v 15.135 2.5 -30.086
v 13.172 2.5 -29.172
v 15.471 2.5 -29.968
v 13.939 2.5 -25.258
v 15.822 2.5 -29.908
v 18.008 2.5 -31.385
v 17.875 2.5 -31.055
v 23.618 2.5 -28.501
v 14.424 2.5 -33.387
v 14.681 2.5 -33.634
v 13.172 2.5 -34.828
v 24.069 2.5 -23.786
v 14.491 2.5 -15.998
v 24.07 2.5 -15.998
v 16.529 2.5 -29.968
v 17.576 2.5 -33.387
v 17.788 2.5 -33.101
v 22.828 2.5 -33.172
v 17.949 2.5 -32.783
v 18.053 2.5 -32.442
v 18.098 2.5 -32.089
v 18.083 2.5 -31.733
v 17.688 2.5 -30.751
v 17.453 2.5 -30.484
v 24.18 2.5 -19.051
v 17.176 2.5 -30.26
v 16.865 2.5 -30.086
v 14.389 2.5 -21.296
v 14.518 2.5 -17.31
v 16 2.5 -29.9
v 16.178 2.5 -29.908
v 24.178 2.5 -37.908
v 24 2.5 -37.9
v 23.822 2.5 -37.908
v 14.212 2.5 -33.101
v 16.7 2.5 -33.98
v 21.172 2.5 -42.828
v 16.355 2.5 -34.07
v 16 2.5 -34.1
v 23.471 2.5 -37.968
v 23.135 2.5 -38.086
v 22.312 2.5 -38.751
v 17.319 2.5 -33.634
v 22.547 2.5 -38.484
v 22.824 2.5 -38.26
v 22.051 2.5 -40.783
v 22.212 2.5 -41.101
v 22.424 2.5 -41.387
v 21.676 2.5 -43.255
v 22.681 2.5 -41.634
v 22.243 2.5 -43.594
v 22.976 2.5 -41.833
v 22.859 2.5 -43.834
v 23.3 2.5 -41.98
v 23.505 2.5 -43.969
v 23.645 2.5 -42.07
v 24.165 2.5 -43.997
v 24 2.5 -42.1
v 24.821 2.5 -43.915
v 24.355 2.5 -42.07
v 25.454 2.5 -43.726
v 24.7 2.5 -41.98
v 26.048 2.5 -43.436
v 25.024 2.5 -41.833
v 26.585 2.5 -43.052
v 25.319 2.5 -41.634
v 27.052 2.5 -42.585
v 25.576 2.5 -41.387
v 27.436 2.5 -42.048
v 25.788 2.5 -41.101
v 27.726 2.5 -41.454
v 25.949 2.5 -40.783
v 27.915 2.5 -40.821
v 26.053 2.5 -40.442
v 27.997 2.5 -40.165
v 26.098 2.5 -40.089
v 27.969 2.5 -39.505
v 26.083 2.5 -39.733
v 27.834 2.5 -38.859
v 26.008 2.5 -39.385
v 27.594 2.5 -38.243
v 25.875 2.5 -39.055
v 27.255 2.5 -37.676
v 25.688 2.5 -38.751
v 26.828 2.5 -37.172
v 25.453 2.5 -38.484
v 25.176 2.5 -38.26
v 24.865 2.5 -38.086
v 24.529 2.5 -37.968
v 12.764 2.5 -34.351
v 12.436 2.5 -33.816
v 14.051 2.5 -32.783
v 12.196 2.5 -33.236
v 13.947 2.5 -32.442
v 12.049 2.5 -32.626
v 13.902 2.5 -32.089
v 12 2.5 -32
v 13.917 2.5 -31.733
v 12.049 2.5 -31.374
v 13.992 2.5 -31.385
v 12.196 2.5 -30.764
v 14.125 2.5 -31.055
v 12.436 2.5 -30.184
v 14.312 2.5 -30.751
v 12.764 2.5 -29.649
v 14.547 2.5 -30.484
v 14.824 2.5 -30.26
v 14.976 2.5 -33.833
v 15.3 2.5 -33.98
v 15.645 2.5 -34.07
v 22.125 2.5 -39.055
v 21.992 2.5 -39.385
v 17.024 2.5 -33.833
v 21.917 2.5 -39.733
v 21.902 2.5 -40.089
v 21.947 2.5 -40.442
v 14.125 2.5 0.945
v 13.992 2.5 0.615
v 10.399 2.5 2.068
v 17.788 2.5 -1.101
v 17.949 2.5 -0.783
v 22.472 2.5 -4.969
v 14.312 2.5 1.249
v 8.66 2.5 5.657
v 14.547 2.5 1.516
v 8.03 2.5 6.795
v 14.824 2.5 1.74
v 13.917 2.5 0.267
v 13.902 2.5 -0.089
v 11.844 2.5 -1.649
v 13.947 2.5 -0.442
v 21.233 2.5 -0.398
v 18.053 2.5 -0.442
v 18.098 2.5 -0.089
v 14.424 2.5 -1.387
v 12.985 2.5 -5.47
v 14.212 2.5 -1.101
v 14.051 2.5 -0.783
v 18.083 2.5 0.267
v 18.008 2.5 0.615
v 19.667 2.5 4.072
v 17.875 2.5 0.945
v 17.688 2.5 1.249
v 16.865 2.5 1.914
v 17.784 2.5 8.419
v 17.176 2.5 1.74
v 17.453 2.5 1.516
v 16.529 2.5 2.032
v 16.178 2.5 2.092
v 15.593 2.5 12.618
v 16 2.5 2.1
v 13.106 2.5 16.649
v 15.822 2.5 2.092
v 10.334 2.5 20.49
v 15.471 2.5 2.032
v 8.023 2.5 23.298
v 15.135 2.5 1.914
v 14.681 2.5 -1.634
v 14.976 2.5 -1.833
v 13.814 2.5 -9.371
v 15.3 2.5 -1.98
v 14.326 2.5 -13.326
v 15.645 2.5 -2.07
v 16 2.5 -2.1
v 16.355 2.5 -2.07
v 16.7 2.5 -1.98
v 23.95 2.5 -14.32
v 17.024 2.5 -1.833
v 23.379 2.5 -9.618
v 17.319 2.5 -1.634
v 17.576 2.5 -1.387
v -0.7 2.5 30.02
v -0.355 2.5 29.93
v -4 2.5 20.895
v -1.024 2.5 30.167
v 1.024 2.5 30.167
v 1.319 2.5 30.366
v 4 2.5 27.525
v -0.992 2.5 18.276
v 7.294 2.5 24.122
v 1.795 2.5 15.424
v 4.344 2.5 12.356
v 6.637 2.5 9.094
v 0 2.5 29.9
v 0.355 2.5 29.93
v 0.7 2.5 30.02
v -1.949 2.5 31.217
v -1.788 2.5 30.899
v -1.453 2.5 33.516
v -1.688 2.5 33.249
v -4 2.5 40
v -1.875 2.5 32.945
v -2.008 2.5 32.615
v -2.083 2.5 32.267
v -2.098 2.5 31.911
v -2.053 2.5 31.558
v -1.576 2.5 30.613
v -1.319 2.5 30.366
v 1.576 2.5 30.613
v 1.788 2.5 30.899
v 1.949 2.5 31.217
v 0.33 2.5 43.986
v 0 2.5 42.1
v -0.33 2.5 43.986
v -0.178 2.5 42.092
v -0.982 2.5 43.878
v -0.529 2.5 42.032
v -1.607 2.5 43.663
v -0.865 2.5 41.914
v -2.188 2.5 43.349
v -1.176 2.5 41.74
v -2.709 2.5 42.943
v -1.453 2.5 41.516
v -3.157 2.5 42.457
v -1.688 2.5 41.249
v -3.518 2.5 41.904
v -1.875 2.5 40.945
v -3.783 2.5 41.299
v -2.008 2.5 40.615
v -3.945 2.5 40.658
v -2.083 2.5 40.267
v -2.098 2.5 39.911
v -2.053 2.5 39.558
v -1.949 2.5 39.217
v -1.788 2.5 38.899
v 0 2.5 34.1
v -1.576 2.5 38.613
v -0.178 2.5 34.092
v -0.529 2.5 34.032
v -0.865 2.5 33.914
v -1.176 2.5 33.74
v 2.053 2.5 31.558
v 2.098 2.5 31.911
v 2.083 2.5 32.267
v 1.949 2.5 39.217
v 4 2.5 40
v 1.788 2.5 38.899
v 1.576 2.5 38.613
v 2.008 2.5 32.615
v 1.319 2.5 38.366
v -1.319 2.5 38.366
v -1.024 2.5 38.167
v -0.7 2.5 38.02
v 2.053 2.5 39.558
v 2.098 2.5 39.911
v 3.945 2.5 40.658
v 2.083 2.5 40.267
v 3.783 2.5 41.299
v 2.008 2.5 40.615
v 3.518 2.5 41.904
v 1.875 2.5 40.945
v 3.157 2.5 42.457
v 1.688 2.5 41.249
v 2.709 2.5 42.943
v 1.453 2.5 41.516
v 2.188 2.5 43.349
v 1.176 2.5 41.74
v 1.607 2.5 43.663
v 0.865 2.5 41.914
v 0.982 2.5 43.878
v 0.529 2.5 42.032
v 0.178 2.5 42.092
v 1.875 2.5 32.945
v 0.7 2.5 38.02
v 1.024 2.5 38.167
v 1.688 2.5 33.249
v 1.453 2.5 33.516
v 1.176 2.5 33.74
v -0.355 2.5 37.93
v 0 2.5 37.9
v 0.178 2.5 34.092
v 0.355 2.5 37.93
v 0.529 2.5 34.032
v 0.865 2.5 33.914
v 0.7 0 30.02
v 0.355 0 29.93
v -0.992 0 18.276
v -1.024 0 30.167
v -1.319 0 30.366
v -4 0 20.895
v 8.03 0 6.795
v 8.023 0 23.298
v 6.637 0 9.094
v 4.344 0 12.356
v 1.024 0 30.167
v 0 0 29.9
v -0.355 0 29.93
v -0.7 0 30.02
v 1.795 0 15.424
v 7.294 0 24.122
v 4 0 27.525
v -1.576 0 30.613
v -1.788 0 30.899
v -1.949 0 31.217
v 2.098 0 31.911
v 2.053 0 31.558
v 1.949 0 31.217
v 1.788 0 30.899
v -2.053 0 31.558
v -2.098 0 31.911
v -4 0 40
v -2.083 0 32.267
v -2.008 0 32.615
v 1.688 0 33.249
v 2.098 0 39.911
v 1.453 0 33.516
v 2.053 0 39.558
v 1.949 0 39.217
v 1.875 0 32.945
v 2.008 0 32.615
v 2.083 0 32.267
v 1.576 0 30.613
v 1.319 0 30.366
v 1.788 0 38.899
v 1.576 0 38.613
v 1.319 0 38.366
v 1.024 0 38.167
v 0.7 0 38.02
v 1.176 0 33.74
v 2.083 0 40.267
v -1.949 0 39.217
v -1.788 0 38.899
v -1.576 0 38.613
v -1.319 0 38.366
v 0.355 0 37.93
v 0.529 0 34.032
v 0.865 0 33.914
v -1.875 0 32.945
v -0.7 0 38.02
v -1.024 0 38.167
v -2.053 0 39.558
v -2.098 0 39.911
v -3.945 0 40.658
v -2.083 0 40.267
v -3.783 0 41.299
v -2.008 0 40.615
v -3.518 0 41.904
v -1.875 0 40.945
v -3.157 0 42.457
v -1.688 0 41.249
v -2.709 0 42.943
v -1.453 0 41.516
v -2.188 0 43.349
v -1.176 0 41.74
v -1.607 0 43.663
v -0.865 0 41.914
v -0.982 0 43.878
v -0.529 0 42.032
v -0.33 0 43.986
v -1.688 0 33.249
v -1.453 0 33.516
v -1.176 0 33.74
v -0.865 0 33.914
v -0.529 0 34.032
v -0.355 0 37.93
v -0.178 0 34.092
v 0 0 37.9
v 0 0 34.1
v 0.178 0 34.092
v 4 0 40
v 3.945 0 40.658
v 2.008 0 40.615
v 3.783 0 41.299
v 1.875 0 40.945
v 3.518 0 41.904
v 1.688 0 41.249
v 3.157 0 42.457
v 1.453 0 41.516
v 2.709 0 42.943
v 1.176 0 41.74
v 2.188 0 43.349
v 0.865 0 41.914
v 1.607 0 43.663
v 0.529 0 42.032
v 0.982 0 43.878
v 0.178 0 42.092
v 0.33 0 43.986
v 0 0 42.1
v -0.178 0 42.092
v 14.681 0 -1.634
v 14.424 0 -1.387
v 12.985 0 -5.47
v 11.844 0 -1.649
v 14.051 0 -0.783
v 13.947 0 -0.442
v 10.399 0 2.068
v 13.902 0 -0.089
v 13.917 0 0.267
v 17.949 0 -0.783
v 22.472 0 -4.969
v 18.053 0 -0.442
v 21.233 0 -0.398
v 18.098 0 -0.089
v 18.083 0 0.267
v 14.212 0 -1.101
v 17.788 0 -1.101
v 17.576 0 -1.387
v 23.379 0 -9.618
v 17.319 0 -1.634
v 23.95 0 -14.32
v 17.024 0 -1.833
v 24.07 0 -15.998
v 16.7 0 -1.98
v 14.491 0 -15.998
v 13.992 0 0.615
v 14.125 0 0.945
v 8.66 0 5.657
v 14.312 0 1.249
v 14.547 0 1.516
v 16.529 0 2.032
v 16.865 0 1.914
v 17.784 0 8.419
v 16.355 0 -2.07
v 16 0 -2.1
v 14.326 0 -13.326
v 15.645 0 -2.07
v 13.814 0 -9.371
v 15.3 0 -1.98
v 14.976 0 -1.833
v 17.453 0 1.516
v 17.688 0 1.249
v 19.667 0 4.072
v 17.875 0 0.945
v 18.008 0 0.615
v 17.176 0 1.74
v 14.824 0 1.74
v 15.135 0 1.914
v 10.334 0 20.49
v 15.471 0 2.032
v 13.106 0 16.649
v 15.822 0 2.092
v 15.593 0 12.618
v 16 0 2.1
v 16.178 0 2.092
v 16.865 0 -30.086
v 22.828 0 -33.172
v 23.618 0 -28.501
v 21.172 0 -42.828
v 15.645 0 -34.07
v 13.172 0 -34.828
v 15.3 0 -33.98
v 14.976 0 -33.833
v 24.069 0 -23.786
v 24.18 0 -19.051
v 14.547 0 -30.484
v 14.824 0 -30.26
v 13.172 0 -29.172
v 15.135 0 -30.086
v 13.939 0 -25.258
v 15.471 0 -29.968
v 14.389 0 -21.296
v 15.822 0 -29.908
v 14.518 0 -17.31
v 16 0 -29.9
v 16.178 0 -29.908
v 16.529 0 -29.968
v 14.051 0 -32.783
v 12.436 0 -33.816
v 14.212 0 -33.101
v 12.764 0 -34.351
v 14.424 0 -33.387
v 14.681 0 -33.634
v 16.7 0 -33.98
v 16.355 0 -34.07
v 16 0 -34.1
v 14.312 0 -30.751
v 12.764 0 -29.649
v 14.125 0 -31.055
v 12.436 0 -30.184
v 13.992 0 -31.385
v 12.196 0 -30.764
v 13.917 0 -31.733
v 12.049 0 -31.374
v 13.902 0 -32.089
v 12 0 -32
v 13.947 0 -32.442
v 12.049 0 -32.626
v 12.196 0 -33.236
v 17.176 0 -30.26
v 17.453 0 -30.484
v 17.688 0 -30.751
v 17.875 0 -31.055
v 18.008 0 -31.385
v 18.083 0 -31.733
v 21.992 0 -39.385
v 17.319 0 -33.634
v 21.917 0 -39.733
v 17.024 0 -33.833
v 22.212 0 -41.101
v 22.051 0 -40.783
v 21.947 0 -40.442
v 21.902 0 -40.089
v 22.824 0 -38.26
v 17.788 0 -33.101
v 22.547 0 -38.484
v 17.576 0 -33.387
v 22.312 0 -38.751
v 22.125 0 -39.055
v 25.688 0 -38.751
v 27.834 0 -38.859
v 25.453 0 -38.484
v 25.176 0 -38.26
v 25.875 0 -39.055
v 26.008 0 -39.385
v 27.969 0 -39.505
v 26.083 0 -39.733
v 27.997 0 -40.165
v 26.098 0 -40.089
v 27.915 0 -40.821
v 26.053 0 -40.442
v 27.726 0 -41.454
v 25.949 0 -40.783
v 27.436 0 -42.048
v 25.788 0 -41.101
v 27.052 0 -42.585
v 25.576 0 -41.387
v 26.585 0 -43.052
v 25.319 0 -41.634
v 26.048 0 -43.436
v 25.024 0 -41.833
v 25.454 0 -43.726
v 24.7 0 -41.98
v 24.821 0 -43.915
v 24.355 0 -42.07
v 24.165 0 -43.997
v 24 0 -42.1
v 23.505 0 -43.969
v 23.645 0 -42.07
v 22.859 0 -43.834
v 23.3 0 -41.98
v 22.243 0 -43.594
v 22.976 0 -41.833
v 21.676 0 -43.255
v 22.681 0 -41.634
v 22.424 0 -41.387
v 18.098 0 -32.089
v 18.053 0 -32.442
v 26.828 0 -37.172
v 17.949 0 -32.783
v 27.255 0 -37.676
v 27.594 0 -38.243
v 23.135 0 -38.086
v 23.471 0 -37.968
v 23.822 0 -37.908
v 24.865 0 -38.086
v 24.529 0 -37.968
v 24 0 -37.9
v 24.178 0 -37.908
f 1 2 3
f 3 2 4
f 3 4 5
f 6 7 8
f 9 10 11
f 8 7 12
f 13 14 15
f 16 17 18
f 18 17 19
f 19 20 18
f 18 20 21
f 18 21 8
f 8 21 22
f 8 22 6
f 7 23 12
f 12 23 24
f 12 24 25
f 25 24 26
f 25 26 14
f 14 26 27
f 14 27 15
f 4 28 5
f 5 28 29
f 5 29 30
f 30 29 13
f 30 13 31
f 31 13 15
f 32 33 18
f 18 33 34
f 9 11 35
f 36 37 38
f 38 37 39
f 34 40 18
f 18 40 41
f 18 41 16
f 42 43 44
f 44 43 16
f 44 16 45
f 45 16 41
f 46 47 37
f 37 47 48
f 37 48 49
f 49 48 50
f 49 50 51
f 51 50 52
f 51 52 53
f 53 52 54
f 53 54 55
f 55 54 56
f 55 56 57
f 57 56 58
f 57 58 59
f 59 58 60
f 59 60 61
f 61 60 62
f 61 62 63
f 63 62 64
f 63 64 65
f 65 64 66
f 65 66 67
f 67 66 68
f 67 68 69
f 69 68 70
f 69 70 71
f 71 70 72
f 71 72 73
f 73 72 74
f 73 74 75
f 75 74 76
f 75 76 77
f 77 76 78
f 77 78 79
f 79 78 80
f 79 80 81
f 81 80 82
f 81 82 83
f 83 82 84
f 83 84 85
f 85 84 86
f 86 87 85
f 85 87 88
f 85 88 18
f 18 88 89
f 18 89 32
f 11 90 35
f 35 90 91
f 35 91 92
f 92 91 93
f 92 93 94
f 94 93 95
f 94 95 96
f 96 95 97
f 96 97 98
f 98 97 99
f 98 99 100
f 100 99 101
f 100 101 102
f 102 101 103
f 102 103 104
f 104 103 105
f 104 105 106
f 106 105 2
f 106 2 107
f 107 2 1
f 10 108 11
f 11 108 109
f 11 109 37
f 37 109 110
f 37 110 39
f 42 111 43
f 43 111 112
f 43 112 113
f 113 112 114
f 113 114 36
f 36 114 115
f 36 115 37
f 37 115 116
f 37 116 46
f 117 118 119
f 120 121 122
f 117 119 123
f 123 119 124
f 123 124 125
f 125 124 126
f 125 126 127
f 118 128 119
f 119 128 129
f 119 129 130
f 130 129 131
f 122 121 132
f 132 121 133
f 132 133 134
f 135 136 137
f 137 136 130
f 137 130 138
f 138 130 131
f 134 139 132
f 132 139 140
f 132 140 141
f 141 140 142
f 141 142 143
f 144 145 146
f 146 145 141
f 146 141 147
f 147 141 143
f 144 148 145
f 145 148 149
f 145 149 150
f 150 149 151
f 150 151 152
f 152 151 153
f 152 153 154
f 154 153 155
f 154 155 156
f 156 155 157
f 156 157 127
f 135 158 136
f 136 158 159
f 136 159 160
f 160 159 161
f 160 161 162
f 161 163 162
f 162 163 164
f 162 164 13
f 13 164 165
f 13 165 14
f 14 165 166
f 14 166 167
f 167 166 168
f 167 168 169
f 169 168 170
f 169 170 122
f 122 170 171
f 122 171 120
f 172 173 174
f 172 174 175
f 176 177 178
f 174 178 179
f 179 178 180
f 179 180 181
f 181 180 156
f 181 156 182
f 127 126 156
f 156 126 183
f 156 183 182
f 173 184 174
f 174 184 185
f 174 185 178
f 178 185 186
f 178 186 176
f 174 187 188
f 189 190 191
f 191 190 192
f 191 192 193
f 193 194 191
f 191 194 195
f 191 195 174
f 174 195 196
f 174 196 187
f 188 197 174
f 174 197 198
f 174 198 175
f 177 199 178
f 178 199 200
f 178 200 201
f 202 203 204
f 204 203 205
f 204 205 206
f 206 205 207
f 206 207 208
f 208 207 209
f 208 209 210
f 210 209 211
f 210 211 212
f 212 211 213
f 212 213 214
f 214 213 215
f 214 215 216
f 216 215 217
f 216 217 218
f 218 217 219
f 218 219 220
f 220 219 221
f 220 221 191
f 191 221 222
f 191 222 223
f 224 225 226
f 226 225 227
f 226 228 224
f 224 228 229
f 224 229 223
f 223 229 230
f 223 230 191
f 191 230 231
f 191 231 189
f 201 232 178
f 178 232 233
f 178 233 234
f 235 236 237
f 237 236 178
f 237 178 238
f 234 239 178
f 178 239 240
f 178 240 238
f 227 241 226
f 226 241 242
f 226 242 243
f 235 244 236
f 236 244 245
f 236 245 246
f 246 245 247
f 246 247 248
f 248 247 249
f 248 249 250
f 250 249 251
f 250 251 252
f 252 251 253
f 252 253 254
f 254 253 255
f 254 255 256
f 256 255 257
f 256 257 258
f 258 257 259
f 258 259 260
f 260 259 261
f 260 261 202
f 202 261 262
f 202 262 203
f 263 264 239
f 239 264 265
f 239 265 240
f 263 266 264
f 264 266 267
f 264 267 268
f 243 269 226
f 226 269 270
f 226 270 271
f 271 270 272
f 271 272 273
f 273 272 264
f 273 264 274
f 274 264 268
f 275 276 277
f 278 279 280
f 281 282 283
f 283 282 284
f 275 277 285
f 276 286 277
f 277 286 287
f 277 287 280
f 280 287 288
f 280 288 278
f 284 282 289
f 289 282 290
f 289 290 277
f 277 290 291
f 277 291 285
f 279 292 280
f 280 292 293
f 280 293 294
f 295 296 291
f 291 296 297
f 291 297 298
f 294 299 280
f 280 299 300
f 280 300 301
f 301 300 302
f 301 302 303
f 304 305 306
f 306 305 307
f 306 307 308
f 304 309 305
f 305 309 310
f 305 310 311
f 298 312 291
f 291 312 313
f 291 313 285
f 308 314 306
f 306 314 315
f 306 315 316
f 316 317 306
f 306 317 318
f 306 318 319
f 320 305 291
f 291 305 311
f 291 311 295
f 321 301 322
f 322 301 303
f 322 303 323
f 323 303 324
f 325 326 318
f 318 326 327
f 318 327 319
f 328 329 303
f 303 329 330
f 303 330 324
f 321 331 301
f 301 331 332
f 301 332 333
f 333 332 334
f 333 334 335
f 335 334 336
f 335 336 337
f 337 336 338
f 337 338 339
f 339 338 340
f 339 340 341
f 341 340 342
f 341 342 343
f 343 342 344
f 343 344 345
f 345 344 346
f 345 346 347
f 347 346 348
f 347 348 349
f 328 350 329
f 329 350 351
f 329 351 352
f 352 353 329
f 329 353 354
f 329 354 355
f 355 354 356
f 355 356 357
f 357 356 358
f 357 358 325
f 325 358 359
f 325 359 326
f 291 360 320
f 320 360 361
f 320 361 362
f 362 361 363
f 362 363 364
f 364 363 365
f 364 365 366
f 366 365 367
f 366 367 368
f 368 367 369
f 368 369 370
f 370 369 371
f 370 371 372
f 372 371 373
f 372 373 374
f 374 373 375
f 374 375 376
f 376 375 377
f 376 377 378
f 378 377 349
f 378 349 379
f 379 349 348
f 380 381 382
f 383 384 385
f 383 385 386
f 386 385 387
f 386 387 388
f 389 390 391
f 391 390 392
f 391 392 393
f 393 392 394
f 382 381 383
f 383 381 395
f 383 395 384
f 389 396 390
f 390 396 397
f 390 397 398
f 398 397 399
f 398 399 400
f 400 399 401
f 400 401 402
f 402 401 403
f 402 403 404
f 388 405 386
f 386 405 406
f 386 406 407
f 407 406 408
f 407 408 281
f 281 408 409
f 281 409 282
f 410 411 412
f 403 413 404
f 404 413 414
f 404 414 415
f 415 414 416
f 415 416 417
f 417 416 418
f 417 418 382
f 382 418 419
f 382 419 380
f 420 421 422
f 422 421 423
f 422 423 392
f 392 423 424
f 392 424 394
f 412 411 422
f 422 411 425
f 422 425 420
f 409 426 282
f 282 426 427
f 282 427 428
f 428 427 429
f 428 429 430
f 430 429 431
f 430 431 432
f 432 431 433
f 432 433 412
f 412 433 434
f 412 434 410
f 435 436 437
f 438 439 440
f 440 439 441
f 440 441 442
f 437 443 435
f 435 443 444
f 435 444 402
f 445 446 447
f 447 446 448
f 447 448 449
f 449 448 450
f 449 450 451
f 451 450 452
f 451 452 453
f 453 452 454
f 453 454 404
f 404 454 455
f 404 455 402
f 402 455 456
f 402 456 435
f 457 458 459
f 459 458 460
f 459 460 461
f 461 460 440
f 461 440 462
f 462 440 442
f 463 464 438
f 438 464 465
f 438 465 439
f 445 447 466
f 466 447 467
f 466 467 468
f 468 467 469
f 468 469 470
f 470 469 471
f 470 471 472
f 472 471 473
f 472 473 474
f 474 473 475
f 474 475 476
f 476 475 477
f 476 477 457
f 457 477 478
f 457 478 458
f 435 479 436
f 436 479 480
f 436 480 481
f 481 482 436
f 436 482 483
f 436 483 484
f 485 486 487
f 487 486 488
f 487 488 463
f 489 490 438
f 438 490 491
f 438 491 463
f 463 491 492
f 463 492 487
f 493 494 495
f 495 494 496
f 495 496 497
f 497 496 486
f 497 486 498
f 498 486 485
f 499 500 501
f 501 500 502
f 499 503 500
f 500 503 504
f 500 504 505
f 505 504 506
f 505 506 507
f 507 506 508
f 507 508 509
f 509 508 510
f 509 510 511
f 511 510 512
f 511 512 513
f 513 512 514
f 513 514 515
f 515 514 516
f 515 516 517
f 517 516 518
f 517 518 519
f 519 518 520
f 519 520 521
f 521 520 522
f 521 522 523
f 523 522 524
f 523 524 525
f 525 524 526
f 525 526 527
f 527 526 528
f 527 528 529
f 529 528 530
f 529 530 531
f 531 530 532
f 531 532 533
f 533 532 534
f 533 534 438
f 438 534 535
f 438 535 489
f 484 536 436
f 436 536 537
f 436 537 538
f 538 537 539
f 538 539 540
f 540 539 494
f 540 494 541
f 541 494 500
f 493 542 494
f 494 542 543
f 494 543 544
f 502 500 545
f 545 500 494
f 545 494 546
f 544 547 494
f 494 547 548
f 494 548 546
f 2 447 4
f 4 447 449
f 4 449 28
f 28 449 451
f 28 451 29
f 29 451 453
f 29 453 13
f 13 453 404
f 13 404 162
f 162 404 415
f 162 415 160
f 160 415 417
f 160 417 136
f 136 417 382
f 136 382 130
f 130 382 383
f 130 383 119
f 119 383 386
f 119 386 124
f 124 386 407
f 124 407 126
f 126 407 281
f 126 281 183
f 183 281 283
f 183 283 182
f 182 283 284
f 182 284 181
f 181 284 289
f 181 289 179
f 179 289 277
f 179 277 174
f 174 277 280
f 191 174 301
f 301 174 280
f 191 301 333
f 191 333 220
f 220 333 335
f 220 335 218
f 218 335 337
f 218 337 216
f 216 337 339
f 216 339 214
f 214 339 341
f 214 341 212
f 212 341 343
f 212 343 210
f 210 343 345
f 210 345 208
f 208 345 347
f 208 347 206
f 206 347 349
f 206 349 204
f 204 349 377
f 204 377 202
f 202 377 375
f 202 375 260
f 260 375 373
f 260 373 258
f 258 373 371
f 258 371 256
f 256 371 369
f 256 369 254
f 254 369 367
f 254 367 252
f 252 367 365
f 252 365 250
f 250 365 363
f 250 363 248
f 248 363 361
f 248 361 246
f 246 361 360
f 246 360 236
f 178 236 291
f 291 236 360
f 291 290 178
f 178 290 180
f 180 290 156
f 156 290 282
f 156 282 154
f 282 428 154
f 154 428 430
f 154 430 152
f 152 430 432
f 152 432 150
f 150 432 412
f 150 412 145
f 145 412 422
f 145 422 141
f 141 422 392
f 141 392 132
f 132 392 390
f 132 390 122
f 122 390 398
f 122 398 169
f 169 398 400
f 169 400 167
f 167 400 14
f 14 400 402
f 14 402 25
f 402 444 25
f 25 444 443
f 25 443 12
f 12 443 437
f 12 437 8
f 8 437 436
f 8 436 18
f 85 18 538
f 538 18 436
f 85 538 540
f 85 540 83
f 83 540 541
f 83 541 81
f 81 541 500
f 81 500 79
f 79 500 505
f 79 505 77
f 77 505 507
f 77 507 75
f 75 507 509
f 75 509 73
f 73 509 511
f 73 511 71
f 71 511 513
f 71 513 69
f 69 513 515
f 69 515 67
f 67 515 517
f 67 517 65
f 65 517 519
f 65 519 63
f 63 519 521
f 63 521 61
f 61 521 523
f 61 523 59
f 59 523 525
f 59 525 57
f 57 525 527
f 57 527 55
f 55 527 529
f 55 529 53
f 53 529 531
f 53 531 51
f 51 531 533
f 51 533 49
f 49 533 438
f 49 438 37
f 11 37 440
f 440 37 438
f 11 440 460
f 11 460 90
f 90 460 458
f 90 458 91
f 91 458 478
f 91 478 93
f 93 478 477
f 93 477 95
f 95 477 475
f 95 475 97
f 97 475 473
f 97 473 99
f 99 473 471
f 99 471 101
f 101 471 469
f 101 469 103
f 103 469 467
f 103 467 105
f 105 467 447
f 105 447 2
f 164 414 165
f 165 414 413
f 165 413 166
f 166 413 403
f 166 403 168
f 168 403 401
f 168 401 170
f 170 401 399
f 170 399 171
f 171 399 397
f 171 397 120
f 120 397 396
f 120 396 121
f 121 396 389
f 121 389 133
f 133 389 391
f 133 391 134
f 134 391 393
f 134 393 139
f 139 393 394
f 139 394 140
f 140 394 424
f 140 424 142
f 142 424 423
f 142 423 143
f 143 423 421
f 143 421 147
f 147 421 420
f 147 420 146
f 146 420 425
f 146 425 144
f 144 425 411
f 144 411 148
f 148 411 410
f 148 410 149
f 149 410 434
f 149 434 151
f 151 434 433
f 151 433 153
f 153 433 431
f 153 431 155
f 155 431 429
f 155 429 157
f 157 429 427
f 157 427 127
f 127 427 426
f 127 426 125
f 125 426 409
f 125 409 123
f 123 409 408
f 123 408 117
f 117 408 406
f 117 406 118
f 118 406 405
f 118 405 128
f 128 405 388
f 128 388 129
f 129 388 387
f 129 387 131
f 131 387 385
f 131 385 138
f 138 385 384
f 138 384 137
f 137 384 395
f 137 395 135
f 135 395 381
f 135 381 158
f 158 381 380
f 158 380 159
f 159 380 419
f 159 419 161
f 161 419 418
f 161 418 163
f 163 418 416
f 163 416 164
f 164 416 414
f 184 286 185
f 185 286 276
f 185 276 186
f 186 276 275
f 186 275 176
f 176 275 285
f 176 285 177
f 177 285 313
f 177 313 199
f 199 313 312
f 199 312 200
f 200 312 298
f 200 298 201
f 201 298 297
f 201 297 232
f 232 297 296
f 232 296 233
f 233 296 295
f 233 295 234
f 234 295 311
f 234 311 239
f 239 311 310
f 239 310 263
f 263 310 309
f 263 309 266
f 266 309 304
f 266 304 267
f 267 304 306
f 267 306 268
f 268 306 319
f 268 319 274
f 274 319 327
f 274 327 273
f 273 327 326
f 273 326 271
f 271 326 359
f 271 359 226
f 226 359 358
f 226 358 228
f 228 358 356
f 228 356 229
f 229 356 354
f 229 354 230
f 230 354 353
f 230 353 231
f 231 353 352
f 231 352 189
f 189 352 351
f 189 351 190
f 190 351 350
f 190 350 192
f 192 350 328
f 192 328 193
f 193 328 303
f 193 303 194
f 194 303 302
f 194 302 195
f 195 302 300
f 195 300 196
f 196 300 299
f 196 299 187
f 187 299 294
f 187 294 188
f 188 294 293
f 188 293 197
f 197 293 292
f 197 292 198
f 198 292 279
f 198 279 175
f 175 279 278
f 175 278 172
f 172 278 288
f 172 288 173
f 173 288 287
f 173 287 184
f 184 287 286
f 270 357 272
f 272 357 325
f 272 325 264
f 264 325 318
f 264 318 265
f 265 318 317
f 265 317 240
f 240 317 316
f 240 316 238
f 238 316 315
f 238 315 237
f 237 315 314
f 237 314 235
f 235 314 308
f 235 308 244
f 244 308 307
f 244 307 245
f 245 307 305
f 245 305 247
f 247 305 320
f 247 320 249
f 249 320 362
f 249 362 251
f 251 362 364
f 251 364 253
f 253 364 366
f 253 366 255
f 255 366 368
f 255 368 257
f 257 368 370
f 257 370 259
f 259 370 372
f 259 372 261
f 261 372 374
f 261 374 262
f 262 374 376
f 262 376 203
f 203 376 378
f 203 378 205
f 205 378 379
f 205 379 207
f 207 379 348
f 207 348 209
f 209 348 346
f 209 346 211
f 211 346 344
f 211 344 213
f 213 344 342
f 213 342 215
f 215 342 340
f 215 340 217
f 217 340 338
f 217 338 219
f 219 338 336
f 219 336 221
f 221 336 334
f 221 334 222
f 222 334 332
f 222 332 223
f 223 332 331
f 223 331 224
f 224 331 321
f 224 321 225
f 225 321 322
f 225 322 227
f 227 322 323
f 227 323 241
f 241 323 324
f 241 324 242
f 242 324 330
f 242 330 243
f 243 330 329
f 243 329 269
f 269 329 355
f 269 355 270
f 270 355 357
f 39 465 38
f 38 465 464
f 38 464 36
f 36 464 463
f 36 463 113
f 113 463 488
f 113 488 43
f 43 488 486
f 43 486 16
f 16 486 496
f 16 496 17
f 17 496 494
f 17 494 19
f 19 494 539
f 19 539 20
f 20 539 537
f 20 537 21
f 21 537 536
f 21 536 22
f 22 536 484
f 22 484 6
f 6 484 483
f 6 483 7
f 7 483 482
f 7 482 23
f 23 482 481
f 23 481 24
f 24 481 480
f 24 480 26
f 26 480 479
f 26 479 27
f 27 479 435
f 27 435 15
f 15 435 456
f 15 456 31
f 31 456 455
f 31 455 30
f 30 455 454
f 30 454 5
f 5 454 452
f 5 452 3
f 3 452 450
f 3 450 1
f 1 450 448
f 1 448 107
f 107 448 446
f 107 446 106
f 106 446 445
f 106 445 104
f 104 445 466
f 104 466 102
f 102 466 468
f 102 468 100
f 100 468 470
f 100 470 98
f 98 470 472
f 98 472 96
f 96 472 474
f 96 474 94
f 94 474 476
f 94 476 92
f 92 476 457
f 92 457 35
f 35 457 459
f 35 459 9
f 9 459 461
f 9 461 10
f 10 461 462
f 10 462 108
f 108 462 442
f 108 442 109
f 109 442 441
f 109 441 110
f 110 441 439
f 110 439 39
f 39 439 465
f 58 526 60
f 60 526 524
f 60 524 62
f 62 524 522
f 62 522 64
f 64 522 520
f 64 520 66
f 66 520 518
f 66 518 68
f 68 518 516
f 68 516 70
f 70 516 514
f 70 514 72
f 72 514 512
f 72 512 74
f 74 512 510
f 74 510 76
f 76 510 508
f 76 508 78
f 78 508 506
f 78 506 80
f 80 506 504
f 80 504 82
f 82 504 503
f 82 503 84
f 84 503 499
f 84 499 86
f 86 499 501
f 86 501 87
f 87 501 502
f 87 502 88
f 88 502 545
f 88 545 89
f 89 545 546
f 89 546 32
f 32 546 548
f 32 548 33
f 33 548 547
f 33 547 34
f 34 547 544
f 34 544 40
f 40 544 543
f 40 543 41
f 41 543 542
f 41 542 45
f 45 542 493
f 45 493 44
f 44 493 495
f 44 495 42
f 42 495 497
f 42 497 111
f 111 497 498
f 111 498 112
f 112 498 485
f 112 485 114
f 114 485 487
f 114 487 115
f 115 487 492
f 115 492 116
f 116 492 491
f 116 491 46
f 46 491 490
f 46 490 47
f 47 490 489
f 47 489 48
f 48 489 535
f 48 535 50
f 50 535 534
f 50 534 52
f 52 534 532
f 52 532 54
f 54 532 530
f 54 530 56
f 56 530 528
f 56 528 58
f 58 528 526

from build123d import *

# Parameters (mm, degrees)
SKETCH1_R           = 2.1
BOSS_EXTRUDE1_DEPTH = 2.5


with BuildPart() as part:
    # Sketch1 → Boss-Extrude1 (new body)
    with BuildSketch(Plane(origin=(0, 0, 0), x_dir=(1, 0, 0), z_dir=(0, 1, 0))):
        with BuildLine():
            Line((4, -36), (4, -40))
            ThreePointArc((4, -40), (0, -44), (-4, -40))
            Line((-4, -40), (-4, -32))
            Line((-4, -32), (-4, -20.894729077))
            ThreePointArc((-4, -20.894729077), (11.843809939, 1.649089261), (13.171572875, 29.171572875))
            ThreePointArc((13.171572875, 29.171572875), (12, 32), (13.171572875, 34.828427125))
            Line((13.171572875, 34.828427125), (21.171572875, 42.828427125))
            ThreePointArc((21.171572875, 42.828427125), (26.828427125, 42.828427125), (26.828427125, 37.171572875))
            Line((26.828427125, 37.171572875), (22.828427125, 33.171572875))
            ThreePointArc((22.828427125, 33.171572875), (21.232537081, 0.397959844), (4, -27.525081572))
            Line((4, -27.525081572), (4, -36))
        make_face()
        with Locations(Location((0, -32, 0), (0, 0, 270))):
            Circle(SKETCH1_R, mode=Mode.SUBTRACT)
        with Locations(Location((0, -40, 0), (0, 0, 270))):
            Circle(SKETCH1_R, mode=Mode.SUBTRACT)
        with Locations(Location((16, 32, 0), (0, 0, 270))):
            Circle(SKETCH1_R, mode=Mode.SUBTRACT)
        with Locations(Location((24, 40, 0), (0, 0, 270))):
            Circle(SKETCH1_R, mode=Mode.SUBTRACT)
        with Locations(Location((16, 0, 0), (0, 0, 270))):
            Circle(SKETCH1_R, mode=Mode.SUBTRACT)
    extrude(amount=BOSS_EXTRUDE1_DEPTH)


solid = part.part
